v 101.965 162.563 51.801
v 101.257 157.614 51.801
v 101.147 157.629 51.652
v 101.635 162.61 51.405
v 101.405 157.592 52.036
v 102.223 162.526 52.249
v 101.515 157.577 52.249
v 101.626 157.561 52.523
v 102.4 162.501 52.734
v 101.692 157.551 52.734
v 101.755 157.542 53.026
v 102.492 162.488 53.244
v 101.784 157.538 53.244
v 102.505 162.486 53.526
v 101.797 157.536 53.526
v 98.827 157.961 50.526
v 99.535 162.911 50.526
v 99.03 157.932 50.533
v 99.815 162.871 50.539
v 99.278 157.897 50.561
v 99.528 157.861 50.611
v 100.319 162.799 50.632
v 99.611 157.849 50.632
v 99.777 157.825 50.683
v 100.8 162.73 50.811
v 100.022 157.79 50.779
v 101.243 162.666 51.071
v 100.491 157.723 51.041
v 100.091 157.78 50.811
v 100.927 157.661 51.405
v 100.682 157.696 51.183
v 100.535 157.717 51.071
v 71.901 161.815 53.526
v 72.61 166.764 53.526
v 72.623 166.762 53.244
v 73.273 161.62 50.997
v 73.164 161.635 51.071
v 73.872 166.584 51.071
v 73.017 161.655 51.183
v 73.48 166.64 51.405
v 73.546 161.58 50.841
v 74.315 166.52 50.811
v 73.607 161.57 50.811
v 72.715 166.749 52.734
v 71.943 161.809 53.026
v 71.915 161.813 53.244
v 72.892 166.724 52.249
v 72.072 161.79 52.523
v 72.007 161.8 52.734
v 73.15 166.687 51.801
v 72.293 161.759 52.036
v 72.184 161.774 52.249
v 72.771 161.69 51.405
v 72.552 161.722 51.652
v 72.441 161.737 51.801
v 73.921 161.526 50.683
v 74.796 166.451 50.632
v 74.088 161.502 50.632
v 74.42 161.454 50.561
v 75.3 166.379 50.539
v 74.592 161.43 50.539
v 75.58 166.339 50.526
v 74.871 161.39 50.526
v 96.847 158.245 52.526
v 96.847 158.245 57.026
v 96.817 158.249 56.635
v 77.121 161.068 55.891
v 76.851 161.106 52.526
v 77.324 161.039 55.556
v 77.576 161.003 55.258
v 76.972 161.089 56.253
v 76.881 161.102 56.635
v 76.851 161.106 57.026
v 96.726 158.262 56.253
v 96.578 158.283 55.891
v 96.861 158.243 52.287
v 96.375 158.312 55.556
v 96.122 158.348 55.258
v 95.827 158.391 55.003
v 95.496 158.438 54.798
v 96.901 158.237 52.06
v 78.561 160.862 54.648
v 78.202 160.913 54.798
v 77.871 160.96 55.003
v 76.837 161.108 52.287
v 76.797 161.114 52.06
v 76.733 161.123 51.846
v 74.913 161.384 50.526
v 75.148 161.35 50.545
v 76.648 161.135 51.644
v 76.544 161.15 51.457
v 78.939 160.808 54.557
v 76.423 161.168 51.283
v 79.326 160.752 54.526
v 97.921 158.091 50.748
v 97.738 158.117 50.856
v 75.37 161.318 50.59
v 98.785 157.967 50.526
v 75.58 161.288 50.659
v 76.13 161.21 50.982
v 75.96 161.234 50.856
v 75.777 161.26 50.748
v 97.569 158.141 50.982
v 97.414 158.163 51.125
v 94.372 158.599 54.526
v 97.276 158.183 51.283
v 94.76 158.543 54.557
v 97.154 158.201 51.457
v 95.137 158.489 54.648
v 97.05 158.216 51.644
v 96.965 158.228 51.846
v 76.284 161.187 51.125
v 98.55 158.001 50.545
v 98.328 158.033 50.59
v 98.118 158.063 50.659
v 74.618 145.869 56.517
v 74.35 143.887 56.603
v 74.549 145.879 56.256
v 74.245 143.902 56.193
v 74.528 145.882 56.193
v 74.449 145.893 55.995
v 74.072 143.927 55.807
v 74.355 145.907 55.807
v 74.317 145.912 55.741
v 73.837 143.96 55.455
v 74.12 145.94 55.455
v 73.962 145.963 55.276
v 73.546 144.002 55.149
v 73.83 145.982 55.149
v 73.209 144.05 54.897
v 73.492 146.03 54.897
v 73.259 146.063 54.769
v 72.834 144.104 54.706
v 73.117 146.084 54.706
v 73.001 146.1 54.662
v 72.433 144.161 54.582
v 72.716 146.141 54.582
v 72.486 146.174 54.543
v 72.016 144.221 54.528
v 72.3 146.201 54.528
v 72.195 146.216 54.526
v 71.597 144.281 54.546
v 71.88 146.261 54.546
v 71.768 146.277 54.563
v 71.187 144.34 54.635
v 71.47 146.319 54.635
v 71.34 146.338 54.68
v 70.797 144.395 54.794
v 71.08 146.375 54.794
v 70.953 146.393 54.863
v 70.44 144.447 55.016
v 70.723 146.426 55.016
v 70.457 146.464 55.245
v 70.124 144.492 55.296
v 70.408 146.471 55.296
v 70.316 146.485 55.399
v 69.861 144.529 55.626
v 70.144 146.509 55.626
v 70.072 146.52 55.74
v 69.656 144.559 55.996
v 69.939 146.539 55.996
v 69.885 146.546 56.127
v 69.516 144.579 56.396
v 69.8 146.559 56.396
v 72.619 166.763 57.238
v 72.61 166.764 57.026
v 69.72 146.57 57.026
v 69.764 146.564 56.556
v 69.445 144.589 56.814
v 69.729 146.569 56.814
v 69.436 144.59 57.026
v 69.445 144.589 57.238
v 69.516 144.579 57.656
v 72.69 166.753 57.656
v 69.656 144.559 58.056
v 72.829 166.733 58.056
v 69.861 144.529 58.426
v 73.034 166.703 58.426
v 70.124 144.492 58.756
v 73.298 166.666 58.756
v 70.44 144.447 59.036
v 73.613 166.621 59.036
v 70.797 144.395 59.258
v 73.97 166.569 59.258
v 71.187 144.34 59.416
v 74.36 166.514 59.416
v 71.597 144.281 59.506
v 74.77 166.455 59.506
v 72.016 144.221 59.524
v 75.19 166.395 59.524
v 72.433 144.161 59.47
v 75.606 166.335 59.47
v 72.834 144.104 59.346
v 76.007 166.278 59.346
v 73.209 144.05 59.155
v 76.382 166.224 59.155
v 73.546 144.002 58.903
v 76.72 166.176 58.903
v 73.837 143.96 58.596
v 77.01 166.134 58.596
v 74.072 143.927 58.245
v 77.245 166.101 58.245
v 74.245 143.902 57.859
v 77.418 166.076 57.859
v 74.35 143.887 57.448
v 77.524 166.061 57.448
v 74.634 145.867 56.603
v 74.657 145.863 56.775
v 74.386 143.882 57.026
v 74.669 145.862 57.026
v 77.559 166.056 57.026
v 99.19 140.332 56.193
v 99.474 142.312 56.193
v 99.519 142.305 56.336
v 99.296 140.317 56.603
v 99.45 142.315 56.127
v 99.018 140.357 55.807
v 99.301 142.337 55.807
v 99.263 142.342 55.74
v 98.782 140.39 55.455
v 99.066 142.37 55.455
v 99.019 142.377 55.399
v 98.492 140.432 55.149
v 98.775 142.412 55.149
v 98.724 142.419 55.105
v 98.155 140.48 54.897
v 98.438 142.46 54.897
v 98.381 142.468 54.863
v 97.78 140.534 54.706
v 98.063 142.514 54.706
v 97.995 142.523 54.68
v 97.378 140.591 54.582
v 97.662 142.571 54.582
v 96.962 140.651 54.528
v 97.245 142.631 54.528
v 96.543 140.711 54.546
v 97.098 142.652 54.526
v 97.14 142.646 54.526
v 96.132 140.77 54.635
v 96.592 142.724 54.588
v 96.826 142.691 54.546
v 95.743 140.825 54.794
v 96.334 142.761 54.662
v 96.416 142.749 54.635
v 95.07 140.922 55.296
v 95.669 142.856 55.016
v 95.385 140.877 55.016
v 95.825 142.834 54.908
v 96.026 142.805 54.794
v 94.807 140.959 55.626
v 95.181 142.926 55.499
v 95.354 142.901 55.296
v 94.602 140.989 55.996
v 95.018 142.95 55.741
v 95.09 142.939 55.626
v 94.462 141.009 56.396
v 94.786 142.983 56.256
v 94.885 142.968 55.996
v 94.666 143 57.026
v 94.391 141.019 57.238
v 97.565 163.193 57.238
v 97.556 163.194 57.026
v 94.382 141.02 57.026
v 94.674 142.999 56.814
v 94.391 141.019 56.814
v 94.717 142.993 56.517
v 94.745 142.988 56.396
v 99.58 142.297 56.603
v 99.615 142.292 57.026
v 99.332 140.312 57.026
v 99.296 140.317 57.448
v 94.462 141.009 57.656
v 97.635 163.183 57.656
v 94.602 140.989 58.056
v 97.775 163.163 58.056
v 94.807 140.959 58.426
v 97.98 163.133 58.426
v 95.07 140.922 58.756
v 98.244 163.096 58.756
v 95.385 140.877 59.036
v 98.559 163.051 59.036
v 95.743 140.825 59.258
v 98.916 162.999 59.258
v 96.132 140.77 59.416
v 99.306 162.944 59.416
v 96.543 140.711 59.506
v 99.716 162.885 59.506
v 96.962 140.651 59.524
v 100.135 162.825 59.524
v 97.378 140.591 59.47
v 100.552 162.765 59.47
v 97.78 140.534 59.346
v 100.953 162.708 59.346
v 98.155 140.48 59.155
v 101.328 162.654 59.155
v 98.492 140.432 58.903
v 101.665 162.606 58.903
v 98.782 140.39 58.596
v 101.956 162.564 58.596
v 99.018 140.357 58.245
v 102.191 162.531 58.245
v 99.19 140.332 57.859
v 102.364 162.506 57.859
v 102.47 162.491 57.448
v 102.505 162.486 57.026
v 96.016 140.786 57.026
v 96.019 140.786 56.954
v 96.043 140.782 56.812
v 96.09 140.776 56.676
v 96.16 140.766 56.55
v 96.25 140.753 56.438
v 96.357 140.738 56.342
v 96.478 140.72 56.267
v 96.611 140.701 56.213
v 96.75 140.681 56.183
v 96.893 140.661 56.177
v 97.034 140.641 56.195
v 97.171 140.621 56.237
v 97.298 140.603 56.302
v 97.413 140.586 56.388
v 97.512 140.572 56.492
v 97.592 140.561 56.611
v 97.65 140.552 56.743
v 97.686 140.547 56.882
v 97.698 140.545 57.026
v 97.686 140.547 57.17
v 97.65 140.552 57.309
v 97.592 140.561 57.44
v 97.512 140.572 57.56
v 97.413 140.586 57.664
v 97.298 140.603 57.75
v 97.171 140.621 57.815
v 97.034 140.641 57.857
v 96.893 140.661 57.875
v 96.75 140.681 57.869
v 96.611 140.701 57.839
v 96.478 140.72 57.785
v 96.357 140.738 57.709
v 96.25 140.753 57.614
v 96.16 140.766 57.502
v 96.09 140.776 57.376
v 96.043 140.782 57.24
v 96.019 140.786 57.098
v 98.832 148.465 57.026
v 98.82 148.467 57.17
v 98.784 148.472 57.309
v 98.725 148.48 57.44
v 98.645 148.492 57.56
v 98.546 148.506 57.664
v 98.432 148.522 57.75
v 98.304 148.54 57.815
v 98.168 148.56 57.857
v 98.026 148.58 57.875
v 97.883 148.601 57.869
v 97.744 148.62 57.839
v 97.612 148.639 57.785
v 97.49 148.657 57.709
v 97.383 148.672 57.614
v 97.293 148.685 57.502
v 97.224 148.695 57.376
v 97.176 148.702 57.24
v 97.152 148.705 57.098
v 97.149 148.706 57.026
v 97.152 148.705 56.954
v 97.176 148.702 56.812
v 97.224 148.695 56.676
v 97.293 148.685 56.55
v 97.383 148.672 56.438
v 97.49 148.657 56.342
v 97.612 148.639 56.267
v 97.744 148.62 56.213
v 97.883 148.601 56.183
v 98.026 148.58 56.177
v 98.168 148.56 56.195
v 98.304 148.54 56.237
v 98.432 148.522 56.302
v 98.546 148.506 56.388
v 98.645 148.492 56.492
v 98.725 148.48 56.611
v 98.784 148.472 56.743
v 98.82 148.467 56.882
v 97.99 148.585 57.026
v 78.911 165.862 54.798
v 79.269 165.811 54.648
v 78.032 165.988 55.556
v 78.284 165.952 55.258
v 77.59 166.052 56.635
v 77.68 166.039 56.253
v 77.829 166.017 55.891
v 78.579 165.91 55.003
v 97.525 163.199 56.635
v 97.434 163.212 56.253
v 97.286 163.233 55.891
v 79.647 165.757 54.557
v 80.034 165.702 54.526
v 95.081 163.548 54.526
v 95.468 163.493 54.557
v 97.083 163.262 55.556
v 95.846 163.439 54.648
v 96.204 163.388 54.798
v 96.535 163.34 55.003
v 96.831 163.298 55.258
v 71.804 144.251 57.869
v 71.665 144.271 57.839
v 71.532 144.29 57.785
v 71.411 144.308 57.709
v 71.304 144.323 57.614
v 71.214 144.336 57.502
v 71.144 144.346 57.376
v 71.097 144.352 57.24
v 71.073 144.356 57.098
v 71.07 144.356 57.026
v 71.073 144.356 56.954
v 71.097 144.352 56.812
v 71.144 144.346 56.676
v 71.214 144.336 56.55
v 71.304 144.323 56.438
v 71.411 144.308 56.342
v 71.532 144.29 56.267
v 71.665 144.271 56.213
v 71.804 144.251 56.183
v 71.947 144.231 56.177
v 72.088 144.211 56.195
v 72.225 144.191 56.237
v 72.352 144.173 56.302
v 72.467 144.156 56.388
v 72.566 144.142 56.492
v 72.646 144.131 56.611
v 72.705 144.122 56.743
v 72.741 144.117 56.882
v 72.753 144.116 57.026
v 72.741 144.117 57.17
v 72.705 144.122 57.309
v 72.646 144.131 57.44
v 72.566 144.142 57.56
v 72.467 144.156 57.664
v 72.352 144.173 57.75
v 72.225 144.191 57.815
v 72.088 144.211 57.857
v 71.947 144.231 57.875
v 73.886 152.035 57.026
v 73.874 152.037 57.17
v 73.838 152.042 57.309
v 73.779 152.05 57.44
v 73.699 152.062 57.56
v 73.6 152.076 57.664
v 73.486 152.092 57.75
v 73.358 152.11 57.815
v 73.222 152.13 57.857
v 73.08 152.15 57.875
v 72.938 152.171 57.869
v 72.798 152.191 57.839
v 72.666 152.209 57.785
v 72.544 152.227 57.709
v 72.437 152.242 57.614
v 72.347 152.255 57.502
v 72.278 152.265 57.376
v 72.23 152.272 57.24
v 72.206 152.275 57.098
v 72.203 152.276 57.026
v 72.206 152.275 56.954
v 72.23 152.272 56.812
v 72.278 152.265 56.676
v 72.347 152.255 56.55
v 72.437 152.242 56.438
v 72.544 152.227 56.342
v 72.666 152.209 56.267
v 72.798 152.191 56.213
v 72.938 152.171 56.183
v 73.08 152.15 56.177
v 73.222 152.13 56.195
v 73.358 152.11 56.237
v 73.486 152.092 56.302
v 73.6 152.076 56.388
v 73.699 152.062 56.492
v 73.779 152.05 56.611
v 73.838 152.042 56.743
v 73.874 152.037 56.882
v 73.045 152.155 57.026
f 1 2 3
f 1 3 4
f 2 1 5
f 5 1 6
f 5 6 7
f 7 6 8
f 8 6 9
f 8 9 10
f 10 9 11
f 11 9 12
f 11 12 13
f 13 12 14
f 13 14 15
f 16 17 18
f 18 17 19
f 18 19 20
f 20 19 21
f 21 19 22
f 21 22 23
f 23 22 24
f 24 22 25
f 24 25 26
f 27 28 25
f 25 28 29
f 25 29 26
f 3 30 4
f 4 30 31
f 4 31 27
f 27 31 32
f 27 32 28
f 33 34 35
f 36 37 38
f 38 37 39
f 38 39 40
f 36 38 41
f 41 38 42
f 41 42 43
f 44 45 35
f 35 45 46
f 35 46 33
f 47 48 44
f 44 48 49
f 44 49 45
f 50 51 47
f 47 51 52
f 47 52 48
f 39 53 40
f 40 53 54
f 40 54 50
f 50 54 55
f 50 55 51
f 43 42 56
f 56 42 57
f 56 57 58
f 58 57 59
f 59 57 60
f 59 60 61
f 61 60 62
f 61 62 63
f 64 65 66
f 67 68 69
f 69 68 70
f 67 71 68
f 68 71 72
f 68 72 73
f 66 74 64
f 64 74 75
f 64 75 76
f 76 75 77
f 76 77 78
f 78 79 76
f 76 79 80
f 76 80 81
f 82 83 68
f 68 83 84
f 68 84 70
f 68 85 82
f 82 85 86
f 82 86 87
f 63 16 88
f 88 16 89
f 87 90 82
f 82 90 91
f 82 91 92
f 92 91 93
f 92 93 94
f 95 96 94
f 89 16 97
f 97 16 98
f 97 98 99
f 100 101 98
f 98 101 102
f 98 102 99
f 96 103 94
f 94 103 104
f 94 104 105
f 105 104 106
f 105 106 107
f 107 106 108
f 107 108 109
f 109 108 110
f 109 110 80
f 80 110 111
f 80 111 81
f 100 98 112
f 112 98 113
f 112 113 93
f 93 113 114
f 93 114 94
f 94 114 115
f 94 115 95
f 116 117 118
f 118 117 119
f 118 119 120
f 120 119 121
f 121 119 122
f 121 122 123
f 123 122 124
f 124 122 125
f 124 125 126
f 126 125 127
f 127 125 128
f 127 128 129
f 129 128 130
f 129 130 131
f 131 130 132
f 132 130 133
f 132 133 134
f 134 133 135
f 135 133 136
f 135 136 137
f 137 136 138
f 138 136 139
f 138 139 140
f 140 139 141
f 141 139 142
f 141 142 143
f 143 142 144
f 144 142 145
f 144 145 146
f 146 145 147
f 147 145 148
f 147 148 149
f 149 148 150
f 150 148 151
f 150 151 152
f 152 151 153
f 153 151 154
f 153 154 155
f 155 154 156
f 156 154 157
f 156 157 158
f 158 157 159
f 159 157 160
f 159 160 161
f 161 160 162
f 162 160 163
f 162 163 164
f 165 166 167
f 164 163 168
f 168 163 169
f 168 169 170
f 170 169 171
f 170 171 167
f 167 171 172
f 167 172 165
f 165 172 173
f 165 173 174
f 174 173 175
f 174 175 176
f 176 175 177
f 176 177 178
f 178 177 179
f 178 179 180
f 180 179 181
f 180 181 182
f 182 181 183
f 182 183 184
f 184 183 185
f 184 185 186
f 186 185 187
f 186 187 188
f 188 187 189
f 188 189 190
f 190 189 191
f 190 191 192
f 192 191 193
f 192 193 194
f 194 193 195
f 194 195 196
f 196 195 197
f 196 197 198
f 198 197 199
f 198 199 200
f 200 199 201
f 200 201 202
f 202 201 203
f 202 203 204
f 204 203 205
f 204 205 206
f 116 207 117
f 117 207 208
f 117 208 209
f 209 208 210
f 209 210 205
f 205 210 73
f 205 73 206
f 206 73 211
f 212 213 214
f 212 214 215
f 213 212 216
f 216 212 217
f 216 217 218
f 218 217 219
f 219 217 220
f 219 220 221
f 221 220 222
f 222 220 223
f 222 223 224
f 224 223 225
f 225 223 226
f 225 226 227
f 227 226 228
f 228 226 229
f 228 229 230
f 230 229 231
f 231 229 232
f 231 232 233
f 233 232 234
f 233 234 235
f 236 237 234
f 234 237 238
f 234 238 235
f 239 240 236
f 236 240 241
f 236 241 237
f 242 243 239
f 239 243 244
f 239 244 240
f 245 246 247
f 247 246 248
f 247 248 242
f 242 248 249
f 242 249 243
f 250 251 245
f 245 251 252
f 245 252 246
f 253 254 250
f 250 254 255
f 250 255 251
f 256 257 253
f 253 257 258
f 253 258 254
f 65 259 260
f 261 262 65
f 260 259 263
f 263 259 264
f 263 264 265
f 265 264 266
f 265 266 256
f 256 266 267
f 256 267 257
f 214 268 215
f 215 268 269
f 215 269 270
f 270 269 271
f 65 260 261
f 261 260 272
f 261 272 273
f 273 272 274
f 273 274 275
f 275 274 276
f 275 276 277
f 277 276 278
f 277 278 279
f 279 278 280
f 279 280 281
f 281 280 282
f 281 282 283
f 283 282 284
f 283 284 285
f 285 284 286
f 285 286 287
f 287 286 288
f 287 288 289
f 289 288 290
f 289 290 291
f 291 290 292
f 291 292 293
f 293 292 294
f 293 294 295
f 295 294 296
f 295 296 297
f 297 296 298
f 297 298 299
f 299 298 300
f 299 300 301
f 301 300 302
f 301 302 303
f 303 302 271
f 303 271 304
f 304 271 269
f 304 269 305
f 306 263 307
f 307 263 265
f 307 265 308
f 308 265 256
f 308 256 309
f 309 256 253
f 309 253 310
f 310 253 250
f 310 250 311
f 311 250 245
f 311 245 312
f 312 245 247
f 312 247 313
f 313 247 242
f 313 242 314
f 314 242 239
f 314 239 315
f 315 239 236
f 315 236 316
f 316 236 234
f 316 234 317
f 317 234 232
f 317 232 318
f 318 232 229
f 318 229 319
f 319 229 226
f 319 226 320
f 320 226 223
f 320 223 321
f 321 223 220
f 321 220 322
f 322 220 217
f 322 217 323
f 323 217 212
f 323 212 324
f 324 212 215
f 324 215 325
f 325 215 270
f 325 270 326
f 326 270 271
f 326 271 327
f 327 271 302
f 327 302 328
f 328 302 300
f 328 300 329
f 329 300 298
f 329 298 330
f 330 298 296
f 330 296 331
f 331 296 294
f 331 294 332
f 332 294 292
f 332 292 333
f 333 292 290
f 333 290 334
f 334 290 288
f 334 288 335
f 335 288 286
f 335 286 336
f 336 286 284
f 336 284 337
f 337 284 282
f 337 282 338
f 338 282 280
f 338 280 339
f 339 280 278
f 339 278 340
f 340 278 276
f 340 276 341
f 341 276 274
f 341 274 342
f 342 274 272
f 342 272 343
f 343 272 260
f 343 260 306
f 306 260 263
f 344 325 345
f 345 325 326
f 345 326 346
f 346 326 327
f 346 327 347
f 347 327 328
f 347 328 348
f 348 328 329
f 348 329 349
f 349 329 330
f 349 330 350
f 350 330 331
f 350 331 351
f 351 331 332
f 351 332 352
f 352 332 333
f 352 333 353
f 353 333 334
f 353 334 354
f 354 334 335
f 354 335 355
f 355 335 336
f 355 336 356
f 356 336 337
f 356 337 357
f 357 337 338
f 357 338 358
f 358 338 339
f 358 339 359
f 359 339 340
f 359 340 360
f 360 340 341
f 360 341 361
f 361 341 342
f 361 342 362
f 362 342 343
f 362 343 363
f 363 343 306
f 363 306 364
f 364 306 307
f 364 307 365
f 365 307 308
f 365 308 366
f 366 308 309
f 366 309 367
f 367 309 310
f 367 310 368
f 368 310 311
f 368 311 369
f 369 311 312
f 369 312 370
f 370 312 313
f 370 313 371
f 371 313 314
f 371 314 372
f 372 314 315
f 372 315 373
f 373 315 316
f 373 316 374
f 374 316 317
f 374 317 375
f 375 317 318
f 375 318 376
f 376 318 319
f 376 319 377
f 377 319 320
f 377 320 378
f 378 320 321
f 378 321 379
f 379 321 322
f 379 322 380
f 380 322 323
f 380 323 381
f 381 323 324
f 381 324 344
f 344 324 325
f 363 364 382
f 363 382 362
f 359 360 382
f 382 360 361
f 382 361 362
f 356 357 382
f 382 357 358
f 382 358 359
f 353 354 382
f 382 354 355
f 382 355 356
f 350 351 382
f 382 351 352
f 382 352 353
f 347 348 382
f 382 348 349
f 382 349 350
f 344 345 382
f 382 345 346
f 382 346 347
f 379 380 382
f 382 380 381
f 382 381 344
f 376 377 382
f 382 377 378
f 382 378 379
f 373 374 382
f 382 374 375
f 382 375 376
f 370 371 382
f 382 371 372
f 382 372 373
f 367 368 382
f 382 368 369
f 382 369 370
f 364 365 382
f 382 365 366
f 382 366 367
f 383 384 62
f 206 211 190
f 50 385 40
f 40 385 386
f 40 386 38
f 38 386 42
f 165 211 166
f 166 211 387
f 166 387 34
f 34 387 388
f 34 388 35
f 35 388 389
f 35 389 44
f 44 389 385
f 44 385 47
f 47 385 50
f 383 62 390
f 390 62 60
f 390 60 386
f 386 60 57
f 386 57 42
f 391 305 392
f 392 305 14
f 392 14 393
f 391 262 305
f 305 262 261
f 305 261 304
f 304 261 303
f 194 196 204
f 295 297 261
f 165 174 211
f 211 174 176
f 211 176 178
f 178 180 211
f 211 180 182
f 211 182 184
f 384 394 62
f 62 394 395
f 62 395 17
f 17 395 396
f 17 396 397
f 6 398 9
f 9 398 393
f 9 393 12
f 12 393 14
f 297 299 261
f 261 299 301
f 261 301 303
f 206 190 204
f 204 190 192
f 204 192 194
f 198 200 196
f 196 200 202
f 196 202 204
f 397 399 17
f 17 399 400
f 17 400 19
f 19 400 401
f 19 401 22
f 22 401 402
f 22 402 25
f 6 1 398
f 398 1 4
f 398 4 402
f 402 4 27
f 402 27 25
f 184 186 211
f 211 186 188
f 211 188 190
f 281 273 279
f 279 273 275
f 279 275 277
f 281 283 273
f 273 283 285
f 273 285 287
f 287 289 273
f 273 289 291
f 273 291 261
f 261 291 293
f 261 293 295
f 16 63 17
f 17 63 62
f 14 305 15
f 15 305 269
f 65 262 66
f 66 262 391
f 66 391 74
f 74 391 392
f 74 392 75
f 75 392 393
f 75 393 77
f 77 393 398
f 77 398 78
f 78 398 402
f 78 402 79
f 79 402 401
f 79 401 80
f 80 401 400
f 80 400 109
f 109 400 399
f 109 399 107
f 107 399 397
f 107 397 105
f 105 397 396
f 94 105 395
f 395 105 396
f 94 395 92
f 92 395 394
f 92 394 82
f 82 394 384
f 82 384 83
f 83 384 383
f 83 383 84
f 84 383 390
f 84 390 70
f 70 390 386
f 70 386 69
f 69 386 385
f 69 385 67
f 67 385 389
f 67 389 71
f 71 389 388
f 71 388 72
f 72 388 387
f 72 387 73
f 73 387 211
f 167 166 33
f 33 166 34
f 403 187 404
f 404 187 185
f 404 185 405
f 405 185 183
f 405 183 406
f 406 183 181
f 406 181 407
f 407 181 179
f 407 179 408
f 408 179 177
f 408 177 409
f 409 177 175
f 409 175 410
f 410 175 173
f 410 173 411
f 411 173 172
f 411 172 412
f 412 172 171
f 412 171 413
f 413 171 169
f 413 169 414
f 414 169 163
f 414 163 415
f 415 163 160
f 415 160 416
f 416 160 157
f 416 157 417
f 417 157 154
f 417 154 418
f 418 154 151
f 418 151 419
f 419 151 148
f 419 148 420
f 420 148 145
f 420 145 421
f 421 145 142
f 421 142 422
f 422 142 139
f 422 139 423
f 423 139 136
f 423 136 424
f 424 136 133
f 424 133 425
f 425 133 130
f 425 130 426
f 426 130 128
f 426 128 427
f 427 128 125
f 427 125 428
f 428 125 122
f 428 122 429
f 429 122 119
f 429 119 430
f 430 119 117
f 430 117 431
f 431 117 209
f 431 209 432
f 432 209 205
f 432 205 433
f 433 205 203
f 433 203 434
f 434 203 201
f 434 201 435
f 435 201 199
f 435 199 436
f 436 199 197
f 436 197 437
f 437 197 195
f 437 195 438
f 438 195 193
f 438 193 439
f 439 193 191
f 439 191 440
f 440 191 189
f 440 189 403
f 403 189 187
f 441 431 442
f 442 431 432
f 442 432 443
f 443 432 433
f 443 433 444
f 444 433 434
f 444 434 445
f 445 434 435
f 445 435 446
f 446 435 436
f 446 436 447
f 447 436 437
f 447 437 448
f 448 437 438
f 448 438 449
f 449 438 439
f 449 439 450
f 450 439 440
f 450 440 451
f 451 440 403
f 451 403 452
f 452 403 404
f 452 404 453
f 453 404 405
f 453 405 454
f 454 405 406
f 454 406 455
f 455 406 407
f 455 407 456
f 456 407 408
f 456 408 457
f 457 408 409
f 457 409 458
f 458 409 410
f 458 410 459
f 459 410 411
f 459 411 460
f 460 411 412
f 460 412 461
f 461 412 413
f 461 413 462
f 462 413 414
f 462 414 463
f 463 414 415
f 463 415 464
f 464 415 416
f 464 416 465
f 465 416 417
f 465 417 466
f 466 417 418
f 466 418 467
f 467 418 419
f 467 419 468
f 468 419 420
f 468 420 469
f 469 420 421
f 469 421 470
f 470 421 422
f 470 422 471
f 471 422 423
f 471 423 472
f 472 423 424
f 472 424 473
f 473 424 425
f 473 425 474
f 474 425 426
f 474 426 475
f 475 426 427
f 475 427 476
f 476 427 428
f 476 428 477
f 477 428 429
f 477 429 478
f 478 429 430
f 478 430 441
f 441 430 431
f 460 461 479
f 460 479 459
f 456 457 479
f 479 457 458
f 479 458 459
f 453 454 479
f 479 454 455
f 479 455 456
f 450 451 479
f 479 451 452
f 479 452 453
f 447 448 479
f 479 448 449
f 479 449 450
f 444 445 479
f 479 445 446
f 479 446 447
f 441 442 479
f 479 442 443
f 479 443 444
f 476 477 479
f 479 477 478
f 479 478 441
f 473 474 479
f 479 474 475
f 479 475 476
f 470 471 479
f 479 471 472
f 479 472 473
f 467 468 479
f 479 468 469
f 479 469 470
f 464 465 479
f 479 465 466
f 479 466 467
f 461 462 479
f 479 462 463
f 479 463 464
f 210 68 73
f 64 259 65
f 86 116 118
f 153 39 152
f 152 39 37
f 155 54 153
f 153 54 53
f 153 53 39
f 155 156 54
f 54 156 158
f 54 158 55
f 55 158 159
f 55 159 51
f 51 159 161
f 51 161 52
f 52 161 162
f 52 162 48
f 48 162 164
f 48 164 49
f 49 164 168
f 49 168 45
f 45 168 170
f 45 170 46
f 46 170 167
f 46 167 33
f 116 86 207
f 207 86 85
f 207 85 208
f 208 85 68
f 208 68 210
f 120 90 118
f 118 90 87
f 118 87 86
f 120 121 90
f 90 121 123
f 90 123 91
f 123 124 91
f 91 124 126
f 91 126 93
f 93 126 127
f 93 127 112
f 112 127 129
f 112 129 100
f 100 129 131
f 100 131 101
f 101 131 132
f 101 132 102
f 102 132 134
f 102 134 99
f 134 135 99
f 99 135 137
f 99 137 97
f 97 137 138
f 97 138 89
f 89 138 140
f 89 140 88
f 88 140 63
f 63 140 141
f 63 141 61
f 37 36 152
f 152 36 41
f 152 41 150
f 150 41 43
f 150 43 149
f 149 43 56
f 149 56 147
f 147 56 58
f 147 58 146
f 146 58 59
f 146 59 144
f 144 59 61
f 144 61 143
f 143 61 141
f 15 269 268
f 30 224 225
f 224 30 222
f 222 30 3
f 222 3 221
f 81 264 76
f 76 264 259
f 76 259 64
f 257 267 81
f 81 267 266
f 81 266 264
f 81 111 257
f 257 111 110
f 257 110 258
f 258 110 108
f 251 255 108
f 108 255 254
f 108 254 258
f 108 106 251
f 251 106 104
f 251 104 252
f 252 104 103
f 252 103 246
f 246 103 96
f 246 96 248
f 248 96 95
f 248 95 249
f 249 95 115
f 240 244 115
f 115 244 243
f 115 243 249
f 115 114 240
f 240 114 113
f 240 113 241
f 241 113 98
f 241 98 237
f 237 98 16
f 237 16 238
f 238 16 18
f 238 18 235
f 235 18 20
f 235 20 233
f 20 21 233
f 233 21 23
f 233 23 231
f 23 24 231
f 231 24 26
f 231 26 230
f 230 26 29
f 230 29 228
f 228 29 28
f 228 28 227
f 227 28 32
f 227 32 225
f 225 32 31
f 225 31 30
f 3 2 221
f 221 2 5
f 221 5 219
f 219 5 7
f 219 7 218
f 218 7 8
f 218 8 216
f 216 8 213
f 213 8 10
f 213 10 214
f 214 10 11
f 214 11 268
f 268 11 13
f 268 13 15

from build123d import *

# Parameters (mm, degrees)
SKETCH1_R             = 2.5
SKETCH1_R_2           = 0.85
BOSS_EXTRUDE1_DEPTH   = 8
BOSS_EXTRUDE1_2_DEPTH = 8
SKETCH2_R             = 2.5
BOSS_EXTRUDE2_DEPTH   = 14.4
BOSS_EXTRUDE3_DEPTH   = 5
BOSS_EXTRUDE4_DEPTH   = 15.4


with BuildPart() as part:
    # Sketch1 → Boss-Extrude1 (new body)
    with BuildSketch(Plane(origin=(21.67087115, 151.425949174, 0), x_dir=(0.989914142, -0.141668597, 0), z_dir=(0.141668597, 0.989914142, 0))):
        with Locations((75.952188142, -57.025881449)):
            Circle(SKETCH1_R)
        with Locations((75.952188142, -57.025881449)):
            Circle(SKETCH1_R_2, mode=Mode.SUBTRACT)
    extrude(amount=BOSS_EXTRUDE1_DEPTH)



with BuildPart() as body_2:
    # Sketch1 → Boss-Extrude1 2 (new body)
    with BuildSketch(Plane(origin=(21.67087115, 151.425949174, 0), x_dir=(0.989914142, -0.141668597, 0), z_dir=(0.141668597, 0.989914142, 0))):
        with Locations((50.752188142, -57.025881449)):
            Circle(SKETCH1_R)
        with Locations((50.752188142, -57.025881449)):
            Circle(SKETCH1_R_2, mode=Mode.SUBTRACT)
    extrude(amount=BOSS_EXTRUDE1_2_DEPTH)


with BuildPart() as part_1:
    add(part.part)

    add(body_2.part)  # Boss-Extrude2 merges body 2
    # Sketch2 → Boss-Extrude2 (add)
    with BuildSketch(Plane(origin=(22.804219929, 159.34526231, 0), x_dir=(0.989914142, -0.141668597, 0), z_dir=(0.141668597, 0.989914142, 0))):
        with Locations((75.952188142, -57.025881449)):
            Circle(SKETCH2_R)
        with Locations((50.752188142, -57.025881449)):
            Circle(SKETCH2_R)
    extrude(amount=BOSS_EXTRUDE2_DEPTH)

    # Sketch3 → Boss-Extrude3 (add)
    with BuildSketch(Plane(origin=(24.84424773, 173.600025954, 0), x_dir=(0.989914142, -0.141668597, 0), z_dir=(0.141668597, 0.989914142, 0))):
        with BuildLine():
            ThreePointArc((53.252188142, -57.025881449), (53.984421189, -55.258114497), (55.752188142, -54.525881449))
            Line((55.752188142, -54.525881449), (70.952188142, -54.525881449))
            ThreePointArc((70.952188142, -54.525881449), (72.719955095, -55.258114497), (73.452188142, -57.025881449))
            ThreePointArc((73.452188142, -57.025881449), (75.952188142, -54.525881449), (78.452188142, -57.025881449))
            Line((78.452188142, -57.025881449), (78.452188142, -53.525881449))
            ThreePointArc((78.452188142, -53.525881449), (77.573508485, -51.404561106), (75.452188142, -50.525881449))
            Line((75.452188142, -50.525881449), (51.252188142, -50.525881449))
            ThreePointArc((51.252188142, -50.525881449), (49.130867798, -51.404561106), (48.252188142, -53.525881449))
            Line((48.252188142, -53.525881449), (48.252188142, -57.025881449))
            Line((48.252188142, -57.025881449), (53.252188142, -57.025881449))
        make_face()
    extrude(amount=-BOSS_EXTRUDE3_DEPTH)

    # Sketch4 → Boss-Extrude4 (add)
    with BuildSketch(Plane(origin=(24.135904744, 168.650455244, 0), x_dir=(0.989914142, -0.141668597, 0), z_dir=(-0.141668597, -0.989914142, 0))):
        with BuildLine():
            Line((53.252188142, 57.025881449), (53.252188142, 52.525881449))
            ThreePointArc((53.252188142, 52.525881449), (52.666401704, 51.111667887), (51.252188142, 50.525881449))
            ThreePointArc((51.252188142, 50.525881449), (49.130867798, 51.404561106), (48.252188142, 53.525881449))
            Line((48.252188142, 53.525881449), (48.252188142, 57.025881449))
            ThreePointArc((48.252188142, 57.025881449), (50.752188142, 54.525881449), (53.252188142, 57.025881449))
        make_face()
        with BuildLine():
            Line((73.452188142, 57.025881449), (73.452188142, 52.525881449))
            ThreePointArc((73.452188142, 52.525881449), (74.037974579, 51.111667887), (75.452188142, 50.525881449))
            ThreePointArc((75.452188142, 50.525881449), (77.573508485, 51.404561106), (78.452188142, 53.525881449))
            Line((78.452188142, 53.525881449), (78.452188142, 57.025881449))
            ThreePointArc((78.452188142, 57.025881449), (75.952188142, 54.525881449), (73.452188142, 57.025881449))
        make_face()
    extrude(amount=BOSS_EXTRUDE4_DEPTH)

    # Sketch9 → Cut-Loft7 section 0
    with BuildSketch(Plane(origin=(21.954208345, 153.405777458, 0), x_dir=(0.989914142, -0.141668597, 0), z_dir=(-0.141668597, -0.989914142, 0))):
        with BuildLine():
            Line((48.252188142, 57.025881449), (43.252188142, 57.025881449))
            ThreePointArc((43.252188142, 57.025881449), (45.448887283, 51.722580591), (50.752188142, 49.525881449))
            ThreePointArc((50.752188142, 49.525881449), (56.055489001, 51.722580591), (58.252188142, 57.025881449))
            Line((58.252188142, 57.025881449), (53.252188142, 57.025881449))
            ThreePointArc((53.252188142, 57.025881449), (52.519955095, 55.258114497), (50.752188142, 54.525881449))
            ThreePointArc((50.752188142, 54.525881449), (48.984421189, 55.258114497), (48.252188142, 57.025881449))
        make_face()
    # Sketch8 → Cut-Loft7 section 1
    with BuildSketch(Plane(origin=(24.135904744, 168.650455244, 0), x_dir=(0.989914142, -0.141668597, 0), z_dir=(-0.141668597, -0.989914142, 0))):
        with BuildLine():
            Line((48.252188142, 53.525881449), (45.252188142, 53.525881449))
            ThreePointArc((45.252188142, 53.525881449), (47.009547455, 49.283240762), (51.252188142, 47.525881449))
            ThreePointArc((51.252188142, 47.525881449), (54.787722048, 48.990347544), (56.252188142, 52.525881449))
            Line((56.252188142, 52.525881449), (53.252188142, 52.525881449))
            ThreePointArc((53.252188142, 52.525881449), (52.666401704, 51.111667887), (51.252188142, 50.525881449))
            ThreePointArc((51.252188142, 50.525881449), (49.130867798, 51.404561106), (48.252188142, 53.525881449))
        make_face()
    loft(mode=Mode.SUBTRACT)

    # Sketch9<3> → Cut-Loft8 section 0
    with BuildSketch(Plane(origin=(21.954208345, 153.405777458, 0), x_dir=(0.989914142, -0.141668597, 0), z_dir=(-0.141668597, -0.989914142, 0))):
        with BuildLine():
            Line((73.452188142, 57.025881449), (68.452188142, 57.025881449))
            ThreePointArc((68.452188142, 57.025881449), (70.648887283, 51.722580591), (75.952188142, 49.525881449))
            ThreePointArc((75.952188142, 49.525881449), (81.255489001, 51.722580591), (83.452188142, 57.025881449))
            Line((83.452188142, 57.025881449), (78.452188142, 57.025881449))
            ThreePointArc((78.452188142, 57.025881449), (77.719955095, 55.258114497), (75.952188142, 54.525881449))
            ThreePointArc((75.952188142, 54.525881449), (74.184421189, 55.258114497), (73.452188142, 57.025881449))
        make_face()
    # Sketch8<8> → Cut-Loft8 section 1
    with BuildSketch(Plane(origin=(24.135904744, 168.650455244, 0), x_dir=(0.989914142, -0.141668597, 0), z_dir=(-0.141668597, -0.989914142, 0))):
        with BuildLine():
            Line((73.452188142, 52.525881449), (70.452188142, 52.525881449))
            ThreePointArc((70.452188142, 52.525881449), (71.916654236, 48.990347544), (75.452188142, 47.525881449))
            ThreePointArc((75.452188142, 47.525881449), (79.694828829, 49.283240762), (81.452188142, 53.525881449))
            Line((81.452188142, 53.525881449), (78.452188142, 53.525881449))
            ThreePointArc((78.452188142, 53.525881449), (77.573508485, 51.404561106), (75.452188142, 50.525881449))
            ThreePointArc((75.452188142, 50.525881449), (74.037974579, 51.111667887), (73.452188142, 52.525881449))
        make_face()
    loft(mode=Mode.SUBTRACT)


solid = part_1.part
